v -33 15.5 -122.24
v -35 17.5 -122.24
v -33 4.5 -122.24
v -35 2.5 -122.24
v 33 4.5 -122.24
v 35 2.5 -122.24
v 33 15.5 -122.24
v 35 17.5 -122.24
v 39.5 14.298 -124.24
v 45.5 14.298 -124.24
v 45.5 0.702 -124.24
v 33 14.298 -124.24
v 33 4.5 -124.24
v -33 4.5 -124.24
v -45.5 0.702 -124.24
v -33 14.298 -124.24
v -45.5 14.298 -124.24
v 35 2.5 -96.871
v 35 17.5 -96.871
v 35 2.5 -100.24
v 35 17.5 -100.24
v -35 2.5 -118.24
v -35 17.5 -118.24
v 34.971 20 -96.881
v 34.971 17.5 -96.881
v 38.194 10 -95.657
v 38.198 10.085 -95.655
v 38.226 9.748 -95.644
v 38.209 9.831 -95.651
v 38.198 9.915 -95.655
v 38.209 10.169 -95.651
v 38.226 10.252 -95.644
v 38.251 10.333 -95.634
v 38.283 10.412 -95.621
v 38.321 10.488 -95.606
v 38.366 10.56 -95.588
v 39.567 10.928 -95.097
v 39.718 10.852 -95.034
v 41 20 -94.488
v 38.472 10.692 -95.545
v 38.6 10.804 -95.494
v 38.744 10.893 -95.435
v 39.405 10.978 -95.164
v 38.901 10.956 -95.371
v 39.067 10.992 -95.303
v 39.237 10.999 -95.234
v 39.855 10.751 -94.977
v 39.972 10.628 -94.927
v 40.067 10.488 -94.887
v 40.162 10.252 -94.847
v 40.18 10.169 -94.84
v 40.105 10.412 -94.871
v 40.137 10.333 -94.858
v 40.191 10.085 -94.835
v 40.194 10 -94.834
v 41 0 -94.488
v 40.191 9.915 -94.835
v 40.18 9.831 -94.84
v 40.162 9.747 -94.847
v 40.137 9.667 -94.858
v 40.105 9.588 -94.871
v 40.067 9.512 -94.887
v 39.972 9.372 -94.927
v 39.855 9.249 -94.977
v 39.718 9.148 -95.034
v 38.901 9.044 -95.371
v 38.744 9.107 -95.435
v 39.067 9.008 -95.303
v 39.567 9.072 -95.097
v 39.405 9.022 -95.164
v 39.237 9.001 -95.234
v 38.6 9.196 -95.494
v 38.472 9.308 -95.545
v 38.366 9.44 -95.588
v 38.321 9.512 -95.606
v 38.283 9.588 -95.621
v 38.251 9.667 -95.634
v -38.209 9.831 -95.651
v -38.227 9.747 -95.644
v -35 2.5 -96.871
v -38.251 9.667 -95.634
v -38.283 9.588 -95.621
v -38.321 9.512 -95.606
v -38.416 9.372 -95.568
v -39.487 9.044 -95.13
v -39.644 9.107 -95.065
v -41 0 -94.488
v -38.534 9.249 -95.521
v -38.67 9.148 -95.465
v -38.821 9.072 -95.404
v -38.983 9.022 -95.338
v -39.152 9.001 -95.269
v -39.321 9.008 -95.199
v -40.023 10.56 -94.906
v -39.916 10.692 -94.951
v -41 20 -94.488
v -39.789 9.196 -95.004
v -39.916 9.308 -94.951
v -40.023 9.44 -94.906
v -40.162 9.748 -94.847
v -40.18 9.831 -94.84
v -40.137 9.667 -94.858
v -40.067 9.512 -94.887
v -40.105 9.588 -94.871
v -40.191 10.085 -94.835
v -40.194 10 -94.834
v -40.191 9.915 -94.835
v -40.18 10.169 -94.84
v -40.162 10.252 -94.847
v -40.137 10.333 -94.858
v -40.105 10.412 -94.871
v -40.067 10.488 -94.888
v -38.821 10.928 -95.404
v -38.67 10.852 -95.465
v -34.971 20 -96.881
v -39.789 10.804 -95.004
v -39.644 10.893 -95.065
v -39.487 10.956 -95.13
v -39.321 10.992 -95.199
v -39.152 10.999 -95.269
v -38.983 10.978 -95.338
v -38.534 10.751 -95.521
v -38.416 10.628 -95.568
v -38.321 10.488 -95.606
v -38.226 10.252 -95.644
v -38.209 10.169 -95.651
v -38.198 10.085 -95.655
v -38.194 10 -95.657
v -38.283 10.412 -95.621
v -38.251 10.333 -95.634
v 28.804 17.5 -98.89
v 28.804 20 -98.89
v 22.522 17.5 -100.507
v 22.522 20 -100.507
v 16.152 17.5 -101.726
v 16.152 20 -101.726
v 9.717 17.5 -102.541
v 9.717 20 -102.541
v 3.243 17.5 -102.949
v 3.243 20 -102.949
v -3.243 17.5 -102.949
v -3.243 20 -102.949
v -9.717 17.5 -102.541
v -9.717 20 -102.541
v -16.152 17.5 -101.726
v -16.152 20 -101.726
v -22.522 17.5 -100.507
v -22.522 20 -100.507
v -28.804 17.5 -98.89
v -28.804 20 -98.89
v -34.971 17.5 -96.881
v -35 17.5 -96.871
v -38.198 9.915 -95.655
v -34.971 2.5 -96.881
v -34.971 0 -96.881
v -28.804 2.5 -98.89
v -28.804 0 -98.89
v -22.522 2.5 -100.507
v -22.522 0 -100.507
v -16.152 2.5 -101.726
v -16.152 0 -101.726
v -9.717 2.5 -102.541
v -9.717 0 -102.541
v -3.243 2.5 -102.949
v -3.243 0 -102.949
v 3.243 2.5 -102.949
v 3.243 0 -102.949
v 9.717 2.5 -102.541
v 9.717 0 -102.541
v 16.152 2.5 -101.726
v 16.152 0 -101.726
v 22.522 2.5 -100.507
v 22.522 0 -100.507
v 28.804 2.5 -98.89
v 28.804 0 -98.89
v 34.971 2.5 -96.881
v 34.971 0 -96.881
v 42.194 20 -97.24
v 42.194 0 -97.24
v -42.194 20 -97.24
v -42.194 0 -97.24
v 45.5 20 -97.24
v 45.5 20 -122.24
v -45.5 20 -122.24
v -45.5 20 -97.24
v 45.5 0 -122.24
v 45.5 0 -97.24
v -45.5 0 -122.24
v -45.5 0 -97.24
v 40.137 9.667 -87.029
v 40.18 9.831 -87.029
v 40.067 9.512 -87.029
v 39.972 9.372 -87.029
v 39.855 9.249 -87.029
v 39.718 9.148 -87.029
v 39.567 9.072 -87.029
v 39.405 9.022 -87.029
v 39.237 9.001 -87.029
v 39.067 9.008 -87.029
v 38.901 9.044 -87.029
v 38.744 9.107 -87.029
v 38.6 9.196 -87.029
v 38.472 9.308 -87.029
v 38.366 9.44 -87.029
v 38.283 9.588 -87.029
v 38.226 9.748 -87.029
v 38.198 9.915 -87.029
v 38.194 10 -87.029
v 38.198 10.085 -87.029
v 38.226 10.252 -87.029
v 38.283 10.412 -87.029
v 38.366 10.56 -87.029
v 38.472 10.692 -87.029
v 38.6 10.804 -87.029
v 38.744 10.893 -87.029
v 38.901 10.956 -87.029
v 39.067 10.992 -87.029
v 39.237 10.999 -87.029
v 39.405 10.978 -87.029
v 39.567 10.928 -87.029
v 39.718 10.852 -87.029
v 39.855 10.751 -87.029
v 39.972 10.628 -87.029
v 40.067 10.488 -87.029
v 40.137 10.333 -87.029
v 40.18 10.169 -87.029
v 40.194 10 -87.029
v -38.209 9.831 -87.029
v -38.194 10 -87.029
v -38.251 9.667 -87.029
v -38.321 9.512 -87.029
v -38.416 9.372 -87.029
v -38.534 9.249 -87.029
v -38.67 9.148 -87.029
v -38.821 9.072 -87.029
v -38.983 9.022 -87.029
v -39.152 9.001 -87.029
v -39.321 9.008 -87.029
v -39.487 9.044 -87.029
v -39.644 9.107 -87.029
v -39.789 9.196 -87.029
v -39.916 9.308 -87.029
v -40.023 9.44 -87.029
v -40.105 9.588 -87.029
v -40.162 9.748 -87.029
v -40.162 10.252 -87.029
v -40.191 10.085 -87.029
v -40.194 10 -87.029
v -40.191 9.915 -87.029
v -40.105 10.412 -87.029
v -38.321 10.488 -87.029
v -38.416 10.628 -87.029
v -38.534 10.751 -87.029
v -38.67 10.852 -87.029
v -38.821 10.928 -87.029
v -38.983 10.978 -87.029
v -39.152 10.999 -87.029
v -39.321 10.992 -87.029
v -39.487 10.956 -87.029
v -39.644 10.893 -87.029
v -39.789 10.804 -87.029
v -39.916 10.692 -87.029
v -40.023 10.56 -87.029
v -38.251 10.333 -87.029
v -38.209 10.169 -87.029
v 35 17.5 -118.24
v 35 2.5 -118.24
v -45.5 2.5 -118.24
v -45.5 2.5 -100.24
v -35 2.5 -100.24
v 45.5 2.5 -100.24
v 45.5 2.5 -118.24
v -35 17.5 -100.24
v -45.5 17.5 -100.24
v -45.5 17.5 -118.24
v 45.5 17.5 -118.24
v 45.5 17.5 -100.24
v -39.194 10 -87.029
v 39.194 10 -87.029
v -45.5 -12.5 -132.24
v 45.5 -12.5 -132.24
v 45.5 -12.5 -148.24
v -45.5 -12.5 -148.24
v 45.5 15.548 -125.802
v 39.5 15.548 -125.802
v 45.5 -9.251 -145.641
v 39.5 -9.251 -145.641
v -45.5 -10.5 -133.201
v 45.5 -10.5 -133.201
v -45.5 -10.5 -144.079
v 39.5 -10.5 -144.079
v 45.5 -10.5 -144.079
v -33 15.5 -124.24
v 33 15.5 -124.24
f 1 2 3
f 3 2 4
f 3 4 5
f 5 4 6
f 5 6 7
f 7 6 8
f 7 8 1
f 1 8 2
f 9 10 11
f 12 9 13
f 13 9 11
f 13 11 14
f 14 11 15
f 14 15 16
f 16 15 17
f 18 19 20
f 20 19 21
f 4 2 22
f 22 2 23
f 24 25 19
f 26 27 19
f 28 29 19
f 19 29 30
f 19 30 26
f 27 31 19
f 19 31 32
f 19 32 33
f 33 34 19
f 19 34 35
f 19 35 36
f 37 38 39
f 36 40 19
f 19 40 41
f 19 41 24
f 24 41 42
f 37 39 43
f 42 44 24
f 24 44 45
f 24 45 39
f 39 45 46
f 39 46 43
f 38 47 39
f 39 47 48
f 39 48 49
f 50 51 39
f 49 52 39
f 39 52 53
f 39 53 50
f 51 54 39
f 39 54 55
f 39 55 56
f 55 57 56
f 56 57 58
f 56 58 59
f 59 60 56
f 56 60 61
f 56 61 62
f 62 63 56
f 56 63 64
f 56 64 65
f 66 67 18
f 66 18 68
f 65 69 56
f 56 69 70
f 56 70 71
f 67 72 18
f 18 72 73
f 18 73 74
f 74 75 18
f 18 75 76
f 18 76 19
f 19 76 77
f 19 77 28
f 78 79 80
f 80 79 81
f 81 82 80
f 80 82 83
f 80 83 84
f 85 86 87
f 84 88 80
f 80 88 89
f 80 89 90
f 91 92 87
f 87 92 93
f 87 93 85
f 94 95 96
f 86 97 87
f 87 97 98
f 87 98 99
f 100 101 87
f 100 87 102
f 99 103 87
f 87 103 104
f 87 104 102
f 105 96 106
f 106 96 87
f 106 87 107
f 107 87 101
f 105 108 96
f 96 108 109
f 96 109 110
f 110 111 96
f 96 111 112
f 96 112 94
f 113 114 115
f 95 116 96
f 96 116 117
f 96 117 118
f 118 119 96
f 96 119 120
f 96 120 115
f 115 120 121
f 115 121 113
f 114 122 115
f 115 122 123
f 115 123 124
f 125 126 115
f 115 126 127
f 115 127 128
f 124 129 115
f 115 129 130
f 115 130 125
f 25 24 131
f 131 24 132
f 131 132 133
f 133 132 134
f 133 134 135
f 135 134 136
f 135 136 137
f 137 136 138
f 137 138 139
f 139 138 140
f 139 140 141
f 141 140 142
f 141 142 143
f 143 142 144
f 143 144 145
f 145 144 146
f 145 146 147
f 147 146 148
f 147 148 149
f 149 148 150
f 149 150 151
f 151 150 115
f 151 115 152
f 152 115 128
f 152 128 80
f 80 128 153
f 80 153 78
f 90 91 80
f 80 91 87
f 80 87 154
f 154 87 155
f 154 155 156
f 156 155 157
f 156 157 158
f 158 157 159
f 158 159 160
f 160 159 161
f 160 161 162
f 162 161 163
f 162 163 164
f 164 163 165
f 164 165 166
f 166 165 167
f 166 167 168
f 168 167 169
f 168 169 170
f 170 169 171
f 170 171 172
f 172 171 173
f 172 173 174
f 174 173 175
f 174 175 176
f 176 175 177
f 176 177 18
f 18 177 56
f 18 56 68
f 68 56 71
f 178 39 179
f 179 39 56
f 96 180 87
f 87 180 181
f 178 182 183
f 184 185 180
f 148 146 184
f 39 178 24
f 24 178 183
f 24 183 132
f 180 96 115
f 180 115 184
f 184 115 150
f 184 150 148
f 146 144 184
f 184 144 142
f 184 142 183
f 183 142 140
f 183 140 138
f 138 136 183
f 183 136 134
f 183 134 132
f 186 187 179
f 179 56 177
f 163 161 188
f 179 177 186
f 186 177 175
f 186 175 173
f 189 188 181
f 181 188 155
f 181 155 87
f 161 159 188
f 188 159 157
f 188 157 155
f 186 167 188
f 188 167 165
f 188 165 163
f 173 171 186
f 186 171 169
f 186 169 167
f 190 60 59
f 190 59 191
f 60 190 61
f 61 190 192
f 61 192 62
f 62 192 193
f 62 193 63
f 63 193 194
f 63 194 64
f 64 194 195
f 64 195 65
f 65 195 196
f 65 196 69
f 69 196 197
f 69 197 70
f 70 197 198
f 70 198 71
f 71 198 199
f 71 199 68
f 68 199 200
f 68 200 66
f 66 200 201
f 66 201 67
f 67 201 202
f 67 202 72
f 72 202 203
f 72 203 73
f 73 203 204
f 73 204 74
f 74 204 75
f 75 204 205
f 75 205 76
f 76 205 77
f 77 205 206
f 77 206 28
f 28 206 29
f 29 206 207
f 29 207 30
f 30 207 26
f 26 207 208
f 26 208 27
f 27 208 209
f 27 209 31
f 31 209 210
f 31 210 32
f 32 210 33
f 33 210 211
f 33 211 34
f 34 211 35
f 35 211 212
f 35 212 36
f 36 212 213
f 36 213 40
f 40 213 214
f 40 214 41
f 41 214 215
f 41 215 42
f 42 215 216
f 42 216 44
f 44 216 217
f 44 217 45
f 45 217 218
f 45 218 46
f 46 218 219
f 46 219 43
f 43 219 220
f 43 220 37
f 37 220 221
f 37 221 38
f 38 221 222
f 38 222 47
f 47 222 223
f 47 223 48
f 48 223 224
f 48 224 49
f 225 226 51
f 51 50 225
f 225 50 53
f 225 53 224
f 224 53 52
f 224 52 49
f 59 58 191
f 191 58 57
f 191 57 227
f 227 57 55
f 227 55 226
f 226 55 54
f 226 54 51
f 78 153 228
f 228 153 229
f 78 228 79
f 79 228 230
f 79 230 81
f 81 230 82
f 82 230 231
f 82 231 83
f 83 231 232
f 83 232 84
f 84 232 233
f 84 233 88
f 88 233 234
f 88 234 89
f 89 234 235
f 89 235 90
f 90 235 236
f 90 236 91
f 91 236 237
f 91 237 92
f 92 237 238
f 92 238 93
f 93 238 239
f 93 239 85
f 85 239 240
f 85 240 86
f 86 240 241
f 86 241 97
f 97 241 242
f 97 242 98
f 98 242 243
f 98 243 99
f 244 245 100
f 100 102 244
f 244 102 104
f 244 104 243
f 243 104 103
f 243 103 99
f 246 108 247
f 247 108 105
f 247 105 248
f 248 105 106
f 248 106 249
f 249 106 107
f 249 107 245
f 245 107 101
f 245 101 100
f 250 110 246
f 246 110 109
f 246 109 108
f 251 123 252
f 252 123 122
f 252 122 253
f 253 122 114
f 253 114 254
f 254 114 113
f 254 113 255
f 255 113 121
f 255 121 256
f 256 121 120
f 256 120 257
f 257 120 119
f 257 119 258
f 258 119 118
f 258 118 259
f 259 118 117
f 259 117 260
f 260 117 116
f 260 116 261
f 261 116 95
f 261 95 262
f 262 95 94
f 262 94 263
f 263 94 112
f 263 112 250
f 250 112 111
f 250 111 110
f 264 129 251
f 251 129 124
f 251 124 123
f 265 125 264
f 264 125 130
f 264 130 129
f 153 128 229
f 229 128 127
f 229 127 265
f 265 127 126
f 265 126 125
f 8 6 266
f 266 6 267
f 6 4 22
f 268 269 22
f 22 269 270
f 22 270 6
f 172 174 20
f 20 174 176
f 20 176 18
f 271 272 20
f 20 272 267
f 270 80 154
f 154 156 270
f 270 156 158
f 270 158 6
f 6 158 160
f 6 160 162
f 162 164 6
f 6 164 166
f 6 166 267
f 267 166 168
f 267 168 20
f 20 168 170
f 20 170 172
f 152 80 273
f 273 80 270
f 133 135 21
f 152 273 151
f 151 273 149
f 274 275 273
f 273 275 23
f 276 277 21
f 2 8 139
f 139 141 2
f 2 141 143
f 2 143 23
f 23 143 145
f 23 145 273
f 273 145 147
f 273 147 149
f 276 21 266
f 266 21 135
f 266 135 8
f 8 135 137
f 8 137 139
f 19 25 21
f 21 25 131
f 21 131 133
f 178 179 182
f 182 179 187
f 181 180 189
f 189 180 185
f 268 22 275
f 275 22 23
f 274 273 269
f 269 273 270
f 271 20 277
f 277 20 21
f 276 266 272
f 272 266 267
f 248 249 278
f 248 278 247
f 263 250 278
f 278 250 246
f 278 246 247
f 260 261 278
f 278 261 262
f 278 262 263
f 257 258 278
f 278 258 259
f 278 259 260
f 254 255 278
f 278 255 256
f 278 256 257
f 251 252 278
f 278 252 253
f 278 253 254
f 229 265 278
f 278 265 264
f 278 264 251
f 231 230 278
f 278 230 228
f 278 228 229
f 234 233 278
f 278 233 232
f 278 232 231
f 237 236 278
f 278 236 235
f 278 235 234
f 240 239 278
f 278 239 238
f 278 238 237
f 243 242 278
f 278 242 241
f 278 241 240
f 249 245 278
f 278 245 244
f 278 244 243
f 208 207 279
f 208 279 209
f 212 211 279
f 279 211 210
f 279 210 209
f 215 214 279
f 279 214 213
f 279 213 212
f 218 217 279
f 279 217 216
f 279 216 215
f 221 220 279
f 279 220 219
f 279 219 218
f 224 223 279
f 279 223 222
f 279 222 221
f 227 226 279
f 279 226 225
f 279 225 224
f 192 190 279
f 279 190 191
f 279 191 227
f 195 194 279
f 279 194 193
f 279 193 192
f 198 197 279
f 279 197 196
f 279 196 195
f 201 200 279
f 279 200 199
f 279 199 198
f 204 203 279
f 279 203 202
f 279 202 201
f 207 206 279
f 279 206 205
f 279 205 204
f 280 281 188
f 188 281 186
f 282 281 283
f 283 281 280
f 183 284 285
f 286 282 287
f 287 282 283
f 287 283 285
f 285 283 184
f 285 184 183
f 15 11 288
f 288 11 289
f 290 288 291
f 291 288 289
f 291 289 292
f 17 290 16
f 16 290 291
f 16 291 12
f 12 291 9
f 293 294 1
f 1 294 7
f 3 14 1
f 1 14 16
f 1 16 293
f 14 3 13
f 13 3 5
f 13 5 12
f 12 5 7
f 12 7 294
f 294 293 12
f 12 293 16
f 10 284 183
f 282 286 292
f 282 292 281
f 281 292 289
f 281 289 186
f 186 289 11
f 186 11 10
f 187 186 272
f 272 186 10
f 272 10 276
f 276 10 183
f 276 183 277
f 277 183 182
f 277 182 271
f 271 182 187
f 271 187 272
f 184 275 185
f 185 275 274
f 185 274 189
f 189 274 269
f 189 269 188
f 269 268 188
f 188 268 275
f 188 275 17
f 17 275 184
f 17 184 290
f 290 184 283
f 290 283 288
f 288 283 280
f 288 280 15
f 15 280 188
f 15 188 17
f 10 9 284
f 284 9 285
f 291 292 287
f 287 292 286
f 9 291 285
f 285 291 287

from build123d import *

# Parameters (mm, degrees)
EXTRUDE_1_DEPTH      = 20
SKETCH_2_W           = 200
SKETCH_2_H           = 1
EXTRUDE_2_DEPTH      = 20
SKETCH_3_R           = 1
EXTRUDE_3_DEPTH      = 100
SKETCH_4_W           = 70
SKETCH_4_H           = 15
CUT_EXTRUDE_1_DEPTH  = 150
CUT_EXTRUDE_START    = -150
CUT_EXTRUDE_2_DEPTH  = 150
EXTRUDE_4_DEPTH      = 20
SKETCH_7_W           = 70
SKETCH_7_H           = 15
CUT_EXTRUDE_3_DEPTH  = 50
SKETCH_8_W           = 18
SKETCH_8_H           = 15
CUT_EXTRUDE_4_DEPTH  = 50
SKETCH_9_W           = 18
SKETCH_9_H           = 15
CUT_EXTRUDE_5_DEPTH  = 50
SKETCH_10_W          = 241.24793126
SKETCH_10_H          = 101.321343747
CUT_EXTRUDE_6_DEPTH  = 50
SKETCH_11_W          = 124.388349514
SKETCH_11_H          = 45
EXTRUDE_5_DEPTH      = 10
CUT_EXTRUDE_7_DEPTH  = 200
EXTRUDE_6_DEPTH      = 124.5
CUT_EXTRUDE_8_DEPTH  = 134.5
SKETCH_15_W          = 13.694174757
SKETCH_15_H          = 51
SKETCH_15_W_2        = 13.805825243
CUT_EXTRUDE_9_DEPTH  = 40
CUT_EXTRUDE_10_DEPTH = 120
SKETCH_17_W          = 66
SKETCH_17_H          = 11
CUT_EXTRUDE_12_DEPTH = 120
SKETCH_18_W          = 3
SKETCH_18_H          = 51
CUT_EXTRUDE_13_DEPTH = 120
CUT_EXTRUDE_14_DEPTH = 6


with BuildPart() as part:
    # 草图1 → 凸台-拉伸1 (new body)
    with BuildSketch(Plane(origin=(0, 0, 0), x_dir=(1, 0, 0), z_dir=(0, 1, 0))):
        with BuildLine():
            Line((-42.194174757, 97.24017491), (-41, 94.488094488))
            ThreePointArc((-41, 94.488094488), (0, 103), (41, 94.488094488))
            Line((41, 94.488094488), (42.194174757, 97.24017491))
            ThreePointArc((42.194174757, 97.24017491), (0, 106), (-42.194174757, 97.24017491))
        make_face()
    extrude(amount=EXTRUDE_1_DEPTH)



with BuildPart() as body_2:
    # 草图2 → 凸台-拉伸2 (new body)
    with BuildSketch(Plane.XZ):
        with Locations((0, -0.5)):
            Rectangle(SKETCH_2_W, SKETCH_2_H)
    extrude(amount=-EXTRUDE_2_DEPTH)


with BuildPart() as part_1:
    add(part.part)

    add(body_2.part)  # 凸台-拉伸3 merges body 2
    # 草图3 → 凸台-拉伸3 (add)
    with BuildSketch(Plane(origin=(0, 0, -1), x_dir=(-1, 0, 0), z_dir=(0, 0, -1))):
        with Locations(Location((-39.194174757, 10, 0), (0, 0, 180))):
            Circle(SKETCH_3_R)
        with Locations(Location((39.194174757, 10, 0), (0, 0, 180))):
            Circle(SKETCH_3_R)
    extrude(amount=EXTRUDE_3_DEPTH)

    # 草图4 → 切除-拉伸1 (cut)
    with BuildSketch(Plane(origin=(0, 0, -1), x_dir=(-1, 0, 0), z_dir=(0, 0, -1))):
        with Locations((0, 10)):
            Rectangle(SKETCH_4_W, SKETCH_4_H)
    extrude(amount=CUT_EXTRUDE_1_DEPTH, mode=Mode.SUBTRACT)

    # 草图5 → 切除-拉伸2 (cut)
    with BuildSketch(Plane(origin=(0, 20, 0), x_dir=(1, 0, 0), z_dir=(0, 1, 0)).offset(CUT_EXTRUDE_START)):
        with BuildLine():
            Line((-49.057927096, 113.337024581), (-42.194174757, 97.24017491))
            ThreePointArc((-42.194174757, 97.24017491), (0, 106), (42.194174757, 97.24017491))
            Line((42.194174757, 97.24017491), (51.628141839, 112.189555316))
            ThreePointArc((51.628141839, 112.189555316), (1.407363629, 123.490812126), (-49.057927096, 113.337024581))
        make_face()
    extrude(amount=CUT_EXTRUDE_2_DEPTH, mode=Mode.SUBTRACT)

    # 草图6 → 凸台-拉伸4 (add)
    with BuildSketch(Plane.XZ):
        with BuildLine():
            Line((-42.194174757, -97.24017491), (-62.194174757, -97.24017491))
            Line((-62.194174757, -97.24017491), (-62.194174757, -122.24017491))
            Line((-62.194174757, -122.24017491), (62.194174757, -122.24017491))
            Line((62.194174757, -122.24017491), (62.194174757, -97.24017491))
            Line((62.194174757, -97.24017491), (42.194174757, -97.24017491))
            ThreePointArc((42.194174757, -97.24017491), (0, -106), (-42.194174757, -97.24017491))
        make_face()
    extrude(amount=-EXTRUDE_4_DEPTH)

    # 草图7 → 切除-拉伸3 (cut)
    with BuildSketch(Plane(origin=(0, 0, -122.24017491), x_dir=(-1, 0, 0), z_dir=(0, 0, -1))):
        with Locations((0, 10)):
            Rectangle(SKETCH_7_W, SKETCH_7_H)
    extrude(amount=-CUT_EXTRUDE_3_DEPTH, mode=Mode.SUBTRACT)

    # 草图8 → 切除-拉伸4 (cut)
    with BuildSketch(Plane.ZY.offset(62.194174757)):
        with Locations((-109.24017491, 10)):
            Rectangle(SKETCH_8_W, SKETCH_8_H)
    extrude(amount=-CUT_EXTRUDE_4_DEPTH, mode=Mode.SUBTRACT)

    # 草图9 → 切除-拉伸5 (cut)
    with BuildSketch(Plane(origin=(62.194174757, 0, 0), x_dir=(0, 0, -1), z_dir=(1, 0, 0))):
        with Locations((109.24017491, 10)):
            Rectangle(SKETCH_9_W, SKETCH_9_H)
    extrude(amount=-CUT_EXTRUDE_5_DEPTH, mode=Mode.SUBTRACT)

    # 草图10 → 切除-拉伸6 (cut)
    with BuildSketch(Plane(origin=(0, 20, 0), x_dir=(1, 0, 0), z_dir=(0, 1, 0))):
        with Locations((-3.693281443, 36.368377787)):
            Rectangle(SKETCH_10_W, SKETCH_10_H)
    extrude(amount=-CUT_EXTRUDE_6_DEPTH, mode=Mode.SUBTRACT)

    # 草图11 → 凸台-拉伸5 (add)
    with BuildSketch(Plane(origin=(0, 0, -122.24017491), x_dir=(-1, 0, 0), z_dir=(0, 0, -1))):
        with Locations((0, 10)):
            Rectangle(SKETCH_11_W, SKETCH_11_H)
    extrude(amount=EXTRUDE_5_DEPTH)

    # 草图12 → 切除-拉伸7 (cut)
    with BuildSketch(Plane(origin=(62.194174757, 0, 0), x_dir=(0, 0, -1), z_dir=(1, 0, 0))):
        Polygon((122.24017491, 20), (132.24017491, 32.5), (122.24017491, 32.5), align=None)
        Polygon((122.24017491, 0), (132.24017491, -12.5), (122.24017491, -12.5), align=None)
    extrude(amount=-CUT_EXTRUDE_7_DEPTH, mode=Mode.SUBTRACT)

    # 草图13 → 凸台-拉伸6 (add)
    with BuildSketch(Plane(origin=(62.194174757, 0, 0), x_dir=(0, 0, -1), z_dir=(1, 0, 0))):
        Polygon((122.24017491, 0), (132.24017491, -12.5), (148.24017491, -12.5), (122.24017491, 20), align=None)
    extrude(amount=-EXTRUDE_6_DEPTH)

    # 草图14 → 切除-拉伸8 (cut)
    with BuildSketch(Plane(origin=(62.194174757, 0, 0), x_dir=(0, 0, -1), z_dir=(1, 0, 0))):
        Polygon((122.24017491, 20), (132.24017491, 7.5), (132.24017491, 32.5), align=None)
    extrude(amount=-CUT_EXTRUDE_8_DEPTH, mode=Mode.SUBTRACT)

    # 草图15 → 切除-拉伸9 (cut)
    with BuildSketch(Plane(origin=(0, 20, 0), x_dir=(1, 0, 0), z_dir=(0, 1, 0))):
        with Locations((55.347087379, 122.74017491)):
            Rectangle(SKETCH_15_W, SKETCH_15_H)
        with Locations((-55.402912622, 122.74017491)):
            Rectangle(SKETCH_15_W_2, SKETCH_15_H)
    extrude(amount=-CUT_EXTRUDE_9_DEPTH, mode=Mode.SUBTRACT)

    # 草图16 → 切除-拉伸10 (cut)
    with BuildSketch(Plane.ZY.offset(48.5)):
        Polygon((-124.24017491, 14.298437881), (-144.078925215, -10.5), (-133.201424605, -10.5), (-124.24017491, 0.701562119), align=None)
    extrude(amount=-CUT_EXTRUDE_10_DEPTH, mode=Mode.SUBTRACT)

    # 草图17 → 切除-拉伸12 (cut)
    with BuildSketch(Plane(origin=(0, 0, -124.24017491), x_dir=(-1, 0, 0), z_dir=(0, 0, -1))):
        with Locations((0, 10)):
            Rectangle(SKETCH_17_W, SKETCH_17_H)
    extrude(amount=-CUT_EXTRUDE_12_DEPTH, mode=Mode.SUBTRACT)

    # 草图18 → 切除-拉伸13 (cut)
    with BuildSketch(Plane(origin=(0, 20, 0), x_dir=(1, 0, 0), z_dir=(0, 1, 0))):
        with Locations((-47, 122.74017491)):
            Rectangle(SKETCH_18_W, SKETCH_18_H)
        with Locations((47, 122.74017491)):
            Rectangle(SKETCH_18_W, SKETCH_18_H)
    extrude(amount=-CUT_EXTRUDE_13_DEPTH, mode=Mode.SUBTRACT)

    # 草图22 → 切除-拉伸14 (cut)
    with BuildSketch(Plane(origin=(45.5, 0, 0), x_dir=(0, 0, -1), z_dir=(1, 0, 0))):
        Polygon((124.24017491, 14.298437881), (144.078925215, -10.5), (147.983269262, -7.376524762), (128.144518957, 17.421913119), align=None)
    extrude(amount=-CUT_EXTRUDE_14_DEPTH, mode=Mode.SUBTRACT)


solid = part_1.part
